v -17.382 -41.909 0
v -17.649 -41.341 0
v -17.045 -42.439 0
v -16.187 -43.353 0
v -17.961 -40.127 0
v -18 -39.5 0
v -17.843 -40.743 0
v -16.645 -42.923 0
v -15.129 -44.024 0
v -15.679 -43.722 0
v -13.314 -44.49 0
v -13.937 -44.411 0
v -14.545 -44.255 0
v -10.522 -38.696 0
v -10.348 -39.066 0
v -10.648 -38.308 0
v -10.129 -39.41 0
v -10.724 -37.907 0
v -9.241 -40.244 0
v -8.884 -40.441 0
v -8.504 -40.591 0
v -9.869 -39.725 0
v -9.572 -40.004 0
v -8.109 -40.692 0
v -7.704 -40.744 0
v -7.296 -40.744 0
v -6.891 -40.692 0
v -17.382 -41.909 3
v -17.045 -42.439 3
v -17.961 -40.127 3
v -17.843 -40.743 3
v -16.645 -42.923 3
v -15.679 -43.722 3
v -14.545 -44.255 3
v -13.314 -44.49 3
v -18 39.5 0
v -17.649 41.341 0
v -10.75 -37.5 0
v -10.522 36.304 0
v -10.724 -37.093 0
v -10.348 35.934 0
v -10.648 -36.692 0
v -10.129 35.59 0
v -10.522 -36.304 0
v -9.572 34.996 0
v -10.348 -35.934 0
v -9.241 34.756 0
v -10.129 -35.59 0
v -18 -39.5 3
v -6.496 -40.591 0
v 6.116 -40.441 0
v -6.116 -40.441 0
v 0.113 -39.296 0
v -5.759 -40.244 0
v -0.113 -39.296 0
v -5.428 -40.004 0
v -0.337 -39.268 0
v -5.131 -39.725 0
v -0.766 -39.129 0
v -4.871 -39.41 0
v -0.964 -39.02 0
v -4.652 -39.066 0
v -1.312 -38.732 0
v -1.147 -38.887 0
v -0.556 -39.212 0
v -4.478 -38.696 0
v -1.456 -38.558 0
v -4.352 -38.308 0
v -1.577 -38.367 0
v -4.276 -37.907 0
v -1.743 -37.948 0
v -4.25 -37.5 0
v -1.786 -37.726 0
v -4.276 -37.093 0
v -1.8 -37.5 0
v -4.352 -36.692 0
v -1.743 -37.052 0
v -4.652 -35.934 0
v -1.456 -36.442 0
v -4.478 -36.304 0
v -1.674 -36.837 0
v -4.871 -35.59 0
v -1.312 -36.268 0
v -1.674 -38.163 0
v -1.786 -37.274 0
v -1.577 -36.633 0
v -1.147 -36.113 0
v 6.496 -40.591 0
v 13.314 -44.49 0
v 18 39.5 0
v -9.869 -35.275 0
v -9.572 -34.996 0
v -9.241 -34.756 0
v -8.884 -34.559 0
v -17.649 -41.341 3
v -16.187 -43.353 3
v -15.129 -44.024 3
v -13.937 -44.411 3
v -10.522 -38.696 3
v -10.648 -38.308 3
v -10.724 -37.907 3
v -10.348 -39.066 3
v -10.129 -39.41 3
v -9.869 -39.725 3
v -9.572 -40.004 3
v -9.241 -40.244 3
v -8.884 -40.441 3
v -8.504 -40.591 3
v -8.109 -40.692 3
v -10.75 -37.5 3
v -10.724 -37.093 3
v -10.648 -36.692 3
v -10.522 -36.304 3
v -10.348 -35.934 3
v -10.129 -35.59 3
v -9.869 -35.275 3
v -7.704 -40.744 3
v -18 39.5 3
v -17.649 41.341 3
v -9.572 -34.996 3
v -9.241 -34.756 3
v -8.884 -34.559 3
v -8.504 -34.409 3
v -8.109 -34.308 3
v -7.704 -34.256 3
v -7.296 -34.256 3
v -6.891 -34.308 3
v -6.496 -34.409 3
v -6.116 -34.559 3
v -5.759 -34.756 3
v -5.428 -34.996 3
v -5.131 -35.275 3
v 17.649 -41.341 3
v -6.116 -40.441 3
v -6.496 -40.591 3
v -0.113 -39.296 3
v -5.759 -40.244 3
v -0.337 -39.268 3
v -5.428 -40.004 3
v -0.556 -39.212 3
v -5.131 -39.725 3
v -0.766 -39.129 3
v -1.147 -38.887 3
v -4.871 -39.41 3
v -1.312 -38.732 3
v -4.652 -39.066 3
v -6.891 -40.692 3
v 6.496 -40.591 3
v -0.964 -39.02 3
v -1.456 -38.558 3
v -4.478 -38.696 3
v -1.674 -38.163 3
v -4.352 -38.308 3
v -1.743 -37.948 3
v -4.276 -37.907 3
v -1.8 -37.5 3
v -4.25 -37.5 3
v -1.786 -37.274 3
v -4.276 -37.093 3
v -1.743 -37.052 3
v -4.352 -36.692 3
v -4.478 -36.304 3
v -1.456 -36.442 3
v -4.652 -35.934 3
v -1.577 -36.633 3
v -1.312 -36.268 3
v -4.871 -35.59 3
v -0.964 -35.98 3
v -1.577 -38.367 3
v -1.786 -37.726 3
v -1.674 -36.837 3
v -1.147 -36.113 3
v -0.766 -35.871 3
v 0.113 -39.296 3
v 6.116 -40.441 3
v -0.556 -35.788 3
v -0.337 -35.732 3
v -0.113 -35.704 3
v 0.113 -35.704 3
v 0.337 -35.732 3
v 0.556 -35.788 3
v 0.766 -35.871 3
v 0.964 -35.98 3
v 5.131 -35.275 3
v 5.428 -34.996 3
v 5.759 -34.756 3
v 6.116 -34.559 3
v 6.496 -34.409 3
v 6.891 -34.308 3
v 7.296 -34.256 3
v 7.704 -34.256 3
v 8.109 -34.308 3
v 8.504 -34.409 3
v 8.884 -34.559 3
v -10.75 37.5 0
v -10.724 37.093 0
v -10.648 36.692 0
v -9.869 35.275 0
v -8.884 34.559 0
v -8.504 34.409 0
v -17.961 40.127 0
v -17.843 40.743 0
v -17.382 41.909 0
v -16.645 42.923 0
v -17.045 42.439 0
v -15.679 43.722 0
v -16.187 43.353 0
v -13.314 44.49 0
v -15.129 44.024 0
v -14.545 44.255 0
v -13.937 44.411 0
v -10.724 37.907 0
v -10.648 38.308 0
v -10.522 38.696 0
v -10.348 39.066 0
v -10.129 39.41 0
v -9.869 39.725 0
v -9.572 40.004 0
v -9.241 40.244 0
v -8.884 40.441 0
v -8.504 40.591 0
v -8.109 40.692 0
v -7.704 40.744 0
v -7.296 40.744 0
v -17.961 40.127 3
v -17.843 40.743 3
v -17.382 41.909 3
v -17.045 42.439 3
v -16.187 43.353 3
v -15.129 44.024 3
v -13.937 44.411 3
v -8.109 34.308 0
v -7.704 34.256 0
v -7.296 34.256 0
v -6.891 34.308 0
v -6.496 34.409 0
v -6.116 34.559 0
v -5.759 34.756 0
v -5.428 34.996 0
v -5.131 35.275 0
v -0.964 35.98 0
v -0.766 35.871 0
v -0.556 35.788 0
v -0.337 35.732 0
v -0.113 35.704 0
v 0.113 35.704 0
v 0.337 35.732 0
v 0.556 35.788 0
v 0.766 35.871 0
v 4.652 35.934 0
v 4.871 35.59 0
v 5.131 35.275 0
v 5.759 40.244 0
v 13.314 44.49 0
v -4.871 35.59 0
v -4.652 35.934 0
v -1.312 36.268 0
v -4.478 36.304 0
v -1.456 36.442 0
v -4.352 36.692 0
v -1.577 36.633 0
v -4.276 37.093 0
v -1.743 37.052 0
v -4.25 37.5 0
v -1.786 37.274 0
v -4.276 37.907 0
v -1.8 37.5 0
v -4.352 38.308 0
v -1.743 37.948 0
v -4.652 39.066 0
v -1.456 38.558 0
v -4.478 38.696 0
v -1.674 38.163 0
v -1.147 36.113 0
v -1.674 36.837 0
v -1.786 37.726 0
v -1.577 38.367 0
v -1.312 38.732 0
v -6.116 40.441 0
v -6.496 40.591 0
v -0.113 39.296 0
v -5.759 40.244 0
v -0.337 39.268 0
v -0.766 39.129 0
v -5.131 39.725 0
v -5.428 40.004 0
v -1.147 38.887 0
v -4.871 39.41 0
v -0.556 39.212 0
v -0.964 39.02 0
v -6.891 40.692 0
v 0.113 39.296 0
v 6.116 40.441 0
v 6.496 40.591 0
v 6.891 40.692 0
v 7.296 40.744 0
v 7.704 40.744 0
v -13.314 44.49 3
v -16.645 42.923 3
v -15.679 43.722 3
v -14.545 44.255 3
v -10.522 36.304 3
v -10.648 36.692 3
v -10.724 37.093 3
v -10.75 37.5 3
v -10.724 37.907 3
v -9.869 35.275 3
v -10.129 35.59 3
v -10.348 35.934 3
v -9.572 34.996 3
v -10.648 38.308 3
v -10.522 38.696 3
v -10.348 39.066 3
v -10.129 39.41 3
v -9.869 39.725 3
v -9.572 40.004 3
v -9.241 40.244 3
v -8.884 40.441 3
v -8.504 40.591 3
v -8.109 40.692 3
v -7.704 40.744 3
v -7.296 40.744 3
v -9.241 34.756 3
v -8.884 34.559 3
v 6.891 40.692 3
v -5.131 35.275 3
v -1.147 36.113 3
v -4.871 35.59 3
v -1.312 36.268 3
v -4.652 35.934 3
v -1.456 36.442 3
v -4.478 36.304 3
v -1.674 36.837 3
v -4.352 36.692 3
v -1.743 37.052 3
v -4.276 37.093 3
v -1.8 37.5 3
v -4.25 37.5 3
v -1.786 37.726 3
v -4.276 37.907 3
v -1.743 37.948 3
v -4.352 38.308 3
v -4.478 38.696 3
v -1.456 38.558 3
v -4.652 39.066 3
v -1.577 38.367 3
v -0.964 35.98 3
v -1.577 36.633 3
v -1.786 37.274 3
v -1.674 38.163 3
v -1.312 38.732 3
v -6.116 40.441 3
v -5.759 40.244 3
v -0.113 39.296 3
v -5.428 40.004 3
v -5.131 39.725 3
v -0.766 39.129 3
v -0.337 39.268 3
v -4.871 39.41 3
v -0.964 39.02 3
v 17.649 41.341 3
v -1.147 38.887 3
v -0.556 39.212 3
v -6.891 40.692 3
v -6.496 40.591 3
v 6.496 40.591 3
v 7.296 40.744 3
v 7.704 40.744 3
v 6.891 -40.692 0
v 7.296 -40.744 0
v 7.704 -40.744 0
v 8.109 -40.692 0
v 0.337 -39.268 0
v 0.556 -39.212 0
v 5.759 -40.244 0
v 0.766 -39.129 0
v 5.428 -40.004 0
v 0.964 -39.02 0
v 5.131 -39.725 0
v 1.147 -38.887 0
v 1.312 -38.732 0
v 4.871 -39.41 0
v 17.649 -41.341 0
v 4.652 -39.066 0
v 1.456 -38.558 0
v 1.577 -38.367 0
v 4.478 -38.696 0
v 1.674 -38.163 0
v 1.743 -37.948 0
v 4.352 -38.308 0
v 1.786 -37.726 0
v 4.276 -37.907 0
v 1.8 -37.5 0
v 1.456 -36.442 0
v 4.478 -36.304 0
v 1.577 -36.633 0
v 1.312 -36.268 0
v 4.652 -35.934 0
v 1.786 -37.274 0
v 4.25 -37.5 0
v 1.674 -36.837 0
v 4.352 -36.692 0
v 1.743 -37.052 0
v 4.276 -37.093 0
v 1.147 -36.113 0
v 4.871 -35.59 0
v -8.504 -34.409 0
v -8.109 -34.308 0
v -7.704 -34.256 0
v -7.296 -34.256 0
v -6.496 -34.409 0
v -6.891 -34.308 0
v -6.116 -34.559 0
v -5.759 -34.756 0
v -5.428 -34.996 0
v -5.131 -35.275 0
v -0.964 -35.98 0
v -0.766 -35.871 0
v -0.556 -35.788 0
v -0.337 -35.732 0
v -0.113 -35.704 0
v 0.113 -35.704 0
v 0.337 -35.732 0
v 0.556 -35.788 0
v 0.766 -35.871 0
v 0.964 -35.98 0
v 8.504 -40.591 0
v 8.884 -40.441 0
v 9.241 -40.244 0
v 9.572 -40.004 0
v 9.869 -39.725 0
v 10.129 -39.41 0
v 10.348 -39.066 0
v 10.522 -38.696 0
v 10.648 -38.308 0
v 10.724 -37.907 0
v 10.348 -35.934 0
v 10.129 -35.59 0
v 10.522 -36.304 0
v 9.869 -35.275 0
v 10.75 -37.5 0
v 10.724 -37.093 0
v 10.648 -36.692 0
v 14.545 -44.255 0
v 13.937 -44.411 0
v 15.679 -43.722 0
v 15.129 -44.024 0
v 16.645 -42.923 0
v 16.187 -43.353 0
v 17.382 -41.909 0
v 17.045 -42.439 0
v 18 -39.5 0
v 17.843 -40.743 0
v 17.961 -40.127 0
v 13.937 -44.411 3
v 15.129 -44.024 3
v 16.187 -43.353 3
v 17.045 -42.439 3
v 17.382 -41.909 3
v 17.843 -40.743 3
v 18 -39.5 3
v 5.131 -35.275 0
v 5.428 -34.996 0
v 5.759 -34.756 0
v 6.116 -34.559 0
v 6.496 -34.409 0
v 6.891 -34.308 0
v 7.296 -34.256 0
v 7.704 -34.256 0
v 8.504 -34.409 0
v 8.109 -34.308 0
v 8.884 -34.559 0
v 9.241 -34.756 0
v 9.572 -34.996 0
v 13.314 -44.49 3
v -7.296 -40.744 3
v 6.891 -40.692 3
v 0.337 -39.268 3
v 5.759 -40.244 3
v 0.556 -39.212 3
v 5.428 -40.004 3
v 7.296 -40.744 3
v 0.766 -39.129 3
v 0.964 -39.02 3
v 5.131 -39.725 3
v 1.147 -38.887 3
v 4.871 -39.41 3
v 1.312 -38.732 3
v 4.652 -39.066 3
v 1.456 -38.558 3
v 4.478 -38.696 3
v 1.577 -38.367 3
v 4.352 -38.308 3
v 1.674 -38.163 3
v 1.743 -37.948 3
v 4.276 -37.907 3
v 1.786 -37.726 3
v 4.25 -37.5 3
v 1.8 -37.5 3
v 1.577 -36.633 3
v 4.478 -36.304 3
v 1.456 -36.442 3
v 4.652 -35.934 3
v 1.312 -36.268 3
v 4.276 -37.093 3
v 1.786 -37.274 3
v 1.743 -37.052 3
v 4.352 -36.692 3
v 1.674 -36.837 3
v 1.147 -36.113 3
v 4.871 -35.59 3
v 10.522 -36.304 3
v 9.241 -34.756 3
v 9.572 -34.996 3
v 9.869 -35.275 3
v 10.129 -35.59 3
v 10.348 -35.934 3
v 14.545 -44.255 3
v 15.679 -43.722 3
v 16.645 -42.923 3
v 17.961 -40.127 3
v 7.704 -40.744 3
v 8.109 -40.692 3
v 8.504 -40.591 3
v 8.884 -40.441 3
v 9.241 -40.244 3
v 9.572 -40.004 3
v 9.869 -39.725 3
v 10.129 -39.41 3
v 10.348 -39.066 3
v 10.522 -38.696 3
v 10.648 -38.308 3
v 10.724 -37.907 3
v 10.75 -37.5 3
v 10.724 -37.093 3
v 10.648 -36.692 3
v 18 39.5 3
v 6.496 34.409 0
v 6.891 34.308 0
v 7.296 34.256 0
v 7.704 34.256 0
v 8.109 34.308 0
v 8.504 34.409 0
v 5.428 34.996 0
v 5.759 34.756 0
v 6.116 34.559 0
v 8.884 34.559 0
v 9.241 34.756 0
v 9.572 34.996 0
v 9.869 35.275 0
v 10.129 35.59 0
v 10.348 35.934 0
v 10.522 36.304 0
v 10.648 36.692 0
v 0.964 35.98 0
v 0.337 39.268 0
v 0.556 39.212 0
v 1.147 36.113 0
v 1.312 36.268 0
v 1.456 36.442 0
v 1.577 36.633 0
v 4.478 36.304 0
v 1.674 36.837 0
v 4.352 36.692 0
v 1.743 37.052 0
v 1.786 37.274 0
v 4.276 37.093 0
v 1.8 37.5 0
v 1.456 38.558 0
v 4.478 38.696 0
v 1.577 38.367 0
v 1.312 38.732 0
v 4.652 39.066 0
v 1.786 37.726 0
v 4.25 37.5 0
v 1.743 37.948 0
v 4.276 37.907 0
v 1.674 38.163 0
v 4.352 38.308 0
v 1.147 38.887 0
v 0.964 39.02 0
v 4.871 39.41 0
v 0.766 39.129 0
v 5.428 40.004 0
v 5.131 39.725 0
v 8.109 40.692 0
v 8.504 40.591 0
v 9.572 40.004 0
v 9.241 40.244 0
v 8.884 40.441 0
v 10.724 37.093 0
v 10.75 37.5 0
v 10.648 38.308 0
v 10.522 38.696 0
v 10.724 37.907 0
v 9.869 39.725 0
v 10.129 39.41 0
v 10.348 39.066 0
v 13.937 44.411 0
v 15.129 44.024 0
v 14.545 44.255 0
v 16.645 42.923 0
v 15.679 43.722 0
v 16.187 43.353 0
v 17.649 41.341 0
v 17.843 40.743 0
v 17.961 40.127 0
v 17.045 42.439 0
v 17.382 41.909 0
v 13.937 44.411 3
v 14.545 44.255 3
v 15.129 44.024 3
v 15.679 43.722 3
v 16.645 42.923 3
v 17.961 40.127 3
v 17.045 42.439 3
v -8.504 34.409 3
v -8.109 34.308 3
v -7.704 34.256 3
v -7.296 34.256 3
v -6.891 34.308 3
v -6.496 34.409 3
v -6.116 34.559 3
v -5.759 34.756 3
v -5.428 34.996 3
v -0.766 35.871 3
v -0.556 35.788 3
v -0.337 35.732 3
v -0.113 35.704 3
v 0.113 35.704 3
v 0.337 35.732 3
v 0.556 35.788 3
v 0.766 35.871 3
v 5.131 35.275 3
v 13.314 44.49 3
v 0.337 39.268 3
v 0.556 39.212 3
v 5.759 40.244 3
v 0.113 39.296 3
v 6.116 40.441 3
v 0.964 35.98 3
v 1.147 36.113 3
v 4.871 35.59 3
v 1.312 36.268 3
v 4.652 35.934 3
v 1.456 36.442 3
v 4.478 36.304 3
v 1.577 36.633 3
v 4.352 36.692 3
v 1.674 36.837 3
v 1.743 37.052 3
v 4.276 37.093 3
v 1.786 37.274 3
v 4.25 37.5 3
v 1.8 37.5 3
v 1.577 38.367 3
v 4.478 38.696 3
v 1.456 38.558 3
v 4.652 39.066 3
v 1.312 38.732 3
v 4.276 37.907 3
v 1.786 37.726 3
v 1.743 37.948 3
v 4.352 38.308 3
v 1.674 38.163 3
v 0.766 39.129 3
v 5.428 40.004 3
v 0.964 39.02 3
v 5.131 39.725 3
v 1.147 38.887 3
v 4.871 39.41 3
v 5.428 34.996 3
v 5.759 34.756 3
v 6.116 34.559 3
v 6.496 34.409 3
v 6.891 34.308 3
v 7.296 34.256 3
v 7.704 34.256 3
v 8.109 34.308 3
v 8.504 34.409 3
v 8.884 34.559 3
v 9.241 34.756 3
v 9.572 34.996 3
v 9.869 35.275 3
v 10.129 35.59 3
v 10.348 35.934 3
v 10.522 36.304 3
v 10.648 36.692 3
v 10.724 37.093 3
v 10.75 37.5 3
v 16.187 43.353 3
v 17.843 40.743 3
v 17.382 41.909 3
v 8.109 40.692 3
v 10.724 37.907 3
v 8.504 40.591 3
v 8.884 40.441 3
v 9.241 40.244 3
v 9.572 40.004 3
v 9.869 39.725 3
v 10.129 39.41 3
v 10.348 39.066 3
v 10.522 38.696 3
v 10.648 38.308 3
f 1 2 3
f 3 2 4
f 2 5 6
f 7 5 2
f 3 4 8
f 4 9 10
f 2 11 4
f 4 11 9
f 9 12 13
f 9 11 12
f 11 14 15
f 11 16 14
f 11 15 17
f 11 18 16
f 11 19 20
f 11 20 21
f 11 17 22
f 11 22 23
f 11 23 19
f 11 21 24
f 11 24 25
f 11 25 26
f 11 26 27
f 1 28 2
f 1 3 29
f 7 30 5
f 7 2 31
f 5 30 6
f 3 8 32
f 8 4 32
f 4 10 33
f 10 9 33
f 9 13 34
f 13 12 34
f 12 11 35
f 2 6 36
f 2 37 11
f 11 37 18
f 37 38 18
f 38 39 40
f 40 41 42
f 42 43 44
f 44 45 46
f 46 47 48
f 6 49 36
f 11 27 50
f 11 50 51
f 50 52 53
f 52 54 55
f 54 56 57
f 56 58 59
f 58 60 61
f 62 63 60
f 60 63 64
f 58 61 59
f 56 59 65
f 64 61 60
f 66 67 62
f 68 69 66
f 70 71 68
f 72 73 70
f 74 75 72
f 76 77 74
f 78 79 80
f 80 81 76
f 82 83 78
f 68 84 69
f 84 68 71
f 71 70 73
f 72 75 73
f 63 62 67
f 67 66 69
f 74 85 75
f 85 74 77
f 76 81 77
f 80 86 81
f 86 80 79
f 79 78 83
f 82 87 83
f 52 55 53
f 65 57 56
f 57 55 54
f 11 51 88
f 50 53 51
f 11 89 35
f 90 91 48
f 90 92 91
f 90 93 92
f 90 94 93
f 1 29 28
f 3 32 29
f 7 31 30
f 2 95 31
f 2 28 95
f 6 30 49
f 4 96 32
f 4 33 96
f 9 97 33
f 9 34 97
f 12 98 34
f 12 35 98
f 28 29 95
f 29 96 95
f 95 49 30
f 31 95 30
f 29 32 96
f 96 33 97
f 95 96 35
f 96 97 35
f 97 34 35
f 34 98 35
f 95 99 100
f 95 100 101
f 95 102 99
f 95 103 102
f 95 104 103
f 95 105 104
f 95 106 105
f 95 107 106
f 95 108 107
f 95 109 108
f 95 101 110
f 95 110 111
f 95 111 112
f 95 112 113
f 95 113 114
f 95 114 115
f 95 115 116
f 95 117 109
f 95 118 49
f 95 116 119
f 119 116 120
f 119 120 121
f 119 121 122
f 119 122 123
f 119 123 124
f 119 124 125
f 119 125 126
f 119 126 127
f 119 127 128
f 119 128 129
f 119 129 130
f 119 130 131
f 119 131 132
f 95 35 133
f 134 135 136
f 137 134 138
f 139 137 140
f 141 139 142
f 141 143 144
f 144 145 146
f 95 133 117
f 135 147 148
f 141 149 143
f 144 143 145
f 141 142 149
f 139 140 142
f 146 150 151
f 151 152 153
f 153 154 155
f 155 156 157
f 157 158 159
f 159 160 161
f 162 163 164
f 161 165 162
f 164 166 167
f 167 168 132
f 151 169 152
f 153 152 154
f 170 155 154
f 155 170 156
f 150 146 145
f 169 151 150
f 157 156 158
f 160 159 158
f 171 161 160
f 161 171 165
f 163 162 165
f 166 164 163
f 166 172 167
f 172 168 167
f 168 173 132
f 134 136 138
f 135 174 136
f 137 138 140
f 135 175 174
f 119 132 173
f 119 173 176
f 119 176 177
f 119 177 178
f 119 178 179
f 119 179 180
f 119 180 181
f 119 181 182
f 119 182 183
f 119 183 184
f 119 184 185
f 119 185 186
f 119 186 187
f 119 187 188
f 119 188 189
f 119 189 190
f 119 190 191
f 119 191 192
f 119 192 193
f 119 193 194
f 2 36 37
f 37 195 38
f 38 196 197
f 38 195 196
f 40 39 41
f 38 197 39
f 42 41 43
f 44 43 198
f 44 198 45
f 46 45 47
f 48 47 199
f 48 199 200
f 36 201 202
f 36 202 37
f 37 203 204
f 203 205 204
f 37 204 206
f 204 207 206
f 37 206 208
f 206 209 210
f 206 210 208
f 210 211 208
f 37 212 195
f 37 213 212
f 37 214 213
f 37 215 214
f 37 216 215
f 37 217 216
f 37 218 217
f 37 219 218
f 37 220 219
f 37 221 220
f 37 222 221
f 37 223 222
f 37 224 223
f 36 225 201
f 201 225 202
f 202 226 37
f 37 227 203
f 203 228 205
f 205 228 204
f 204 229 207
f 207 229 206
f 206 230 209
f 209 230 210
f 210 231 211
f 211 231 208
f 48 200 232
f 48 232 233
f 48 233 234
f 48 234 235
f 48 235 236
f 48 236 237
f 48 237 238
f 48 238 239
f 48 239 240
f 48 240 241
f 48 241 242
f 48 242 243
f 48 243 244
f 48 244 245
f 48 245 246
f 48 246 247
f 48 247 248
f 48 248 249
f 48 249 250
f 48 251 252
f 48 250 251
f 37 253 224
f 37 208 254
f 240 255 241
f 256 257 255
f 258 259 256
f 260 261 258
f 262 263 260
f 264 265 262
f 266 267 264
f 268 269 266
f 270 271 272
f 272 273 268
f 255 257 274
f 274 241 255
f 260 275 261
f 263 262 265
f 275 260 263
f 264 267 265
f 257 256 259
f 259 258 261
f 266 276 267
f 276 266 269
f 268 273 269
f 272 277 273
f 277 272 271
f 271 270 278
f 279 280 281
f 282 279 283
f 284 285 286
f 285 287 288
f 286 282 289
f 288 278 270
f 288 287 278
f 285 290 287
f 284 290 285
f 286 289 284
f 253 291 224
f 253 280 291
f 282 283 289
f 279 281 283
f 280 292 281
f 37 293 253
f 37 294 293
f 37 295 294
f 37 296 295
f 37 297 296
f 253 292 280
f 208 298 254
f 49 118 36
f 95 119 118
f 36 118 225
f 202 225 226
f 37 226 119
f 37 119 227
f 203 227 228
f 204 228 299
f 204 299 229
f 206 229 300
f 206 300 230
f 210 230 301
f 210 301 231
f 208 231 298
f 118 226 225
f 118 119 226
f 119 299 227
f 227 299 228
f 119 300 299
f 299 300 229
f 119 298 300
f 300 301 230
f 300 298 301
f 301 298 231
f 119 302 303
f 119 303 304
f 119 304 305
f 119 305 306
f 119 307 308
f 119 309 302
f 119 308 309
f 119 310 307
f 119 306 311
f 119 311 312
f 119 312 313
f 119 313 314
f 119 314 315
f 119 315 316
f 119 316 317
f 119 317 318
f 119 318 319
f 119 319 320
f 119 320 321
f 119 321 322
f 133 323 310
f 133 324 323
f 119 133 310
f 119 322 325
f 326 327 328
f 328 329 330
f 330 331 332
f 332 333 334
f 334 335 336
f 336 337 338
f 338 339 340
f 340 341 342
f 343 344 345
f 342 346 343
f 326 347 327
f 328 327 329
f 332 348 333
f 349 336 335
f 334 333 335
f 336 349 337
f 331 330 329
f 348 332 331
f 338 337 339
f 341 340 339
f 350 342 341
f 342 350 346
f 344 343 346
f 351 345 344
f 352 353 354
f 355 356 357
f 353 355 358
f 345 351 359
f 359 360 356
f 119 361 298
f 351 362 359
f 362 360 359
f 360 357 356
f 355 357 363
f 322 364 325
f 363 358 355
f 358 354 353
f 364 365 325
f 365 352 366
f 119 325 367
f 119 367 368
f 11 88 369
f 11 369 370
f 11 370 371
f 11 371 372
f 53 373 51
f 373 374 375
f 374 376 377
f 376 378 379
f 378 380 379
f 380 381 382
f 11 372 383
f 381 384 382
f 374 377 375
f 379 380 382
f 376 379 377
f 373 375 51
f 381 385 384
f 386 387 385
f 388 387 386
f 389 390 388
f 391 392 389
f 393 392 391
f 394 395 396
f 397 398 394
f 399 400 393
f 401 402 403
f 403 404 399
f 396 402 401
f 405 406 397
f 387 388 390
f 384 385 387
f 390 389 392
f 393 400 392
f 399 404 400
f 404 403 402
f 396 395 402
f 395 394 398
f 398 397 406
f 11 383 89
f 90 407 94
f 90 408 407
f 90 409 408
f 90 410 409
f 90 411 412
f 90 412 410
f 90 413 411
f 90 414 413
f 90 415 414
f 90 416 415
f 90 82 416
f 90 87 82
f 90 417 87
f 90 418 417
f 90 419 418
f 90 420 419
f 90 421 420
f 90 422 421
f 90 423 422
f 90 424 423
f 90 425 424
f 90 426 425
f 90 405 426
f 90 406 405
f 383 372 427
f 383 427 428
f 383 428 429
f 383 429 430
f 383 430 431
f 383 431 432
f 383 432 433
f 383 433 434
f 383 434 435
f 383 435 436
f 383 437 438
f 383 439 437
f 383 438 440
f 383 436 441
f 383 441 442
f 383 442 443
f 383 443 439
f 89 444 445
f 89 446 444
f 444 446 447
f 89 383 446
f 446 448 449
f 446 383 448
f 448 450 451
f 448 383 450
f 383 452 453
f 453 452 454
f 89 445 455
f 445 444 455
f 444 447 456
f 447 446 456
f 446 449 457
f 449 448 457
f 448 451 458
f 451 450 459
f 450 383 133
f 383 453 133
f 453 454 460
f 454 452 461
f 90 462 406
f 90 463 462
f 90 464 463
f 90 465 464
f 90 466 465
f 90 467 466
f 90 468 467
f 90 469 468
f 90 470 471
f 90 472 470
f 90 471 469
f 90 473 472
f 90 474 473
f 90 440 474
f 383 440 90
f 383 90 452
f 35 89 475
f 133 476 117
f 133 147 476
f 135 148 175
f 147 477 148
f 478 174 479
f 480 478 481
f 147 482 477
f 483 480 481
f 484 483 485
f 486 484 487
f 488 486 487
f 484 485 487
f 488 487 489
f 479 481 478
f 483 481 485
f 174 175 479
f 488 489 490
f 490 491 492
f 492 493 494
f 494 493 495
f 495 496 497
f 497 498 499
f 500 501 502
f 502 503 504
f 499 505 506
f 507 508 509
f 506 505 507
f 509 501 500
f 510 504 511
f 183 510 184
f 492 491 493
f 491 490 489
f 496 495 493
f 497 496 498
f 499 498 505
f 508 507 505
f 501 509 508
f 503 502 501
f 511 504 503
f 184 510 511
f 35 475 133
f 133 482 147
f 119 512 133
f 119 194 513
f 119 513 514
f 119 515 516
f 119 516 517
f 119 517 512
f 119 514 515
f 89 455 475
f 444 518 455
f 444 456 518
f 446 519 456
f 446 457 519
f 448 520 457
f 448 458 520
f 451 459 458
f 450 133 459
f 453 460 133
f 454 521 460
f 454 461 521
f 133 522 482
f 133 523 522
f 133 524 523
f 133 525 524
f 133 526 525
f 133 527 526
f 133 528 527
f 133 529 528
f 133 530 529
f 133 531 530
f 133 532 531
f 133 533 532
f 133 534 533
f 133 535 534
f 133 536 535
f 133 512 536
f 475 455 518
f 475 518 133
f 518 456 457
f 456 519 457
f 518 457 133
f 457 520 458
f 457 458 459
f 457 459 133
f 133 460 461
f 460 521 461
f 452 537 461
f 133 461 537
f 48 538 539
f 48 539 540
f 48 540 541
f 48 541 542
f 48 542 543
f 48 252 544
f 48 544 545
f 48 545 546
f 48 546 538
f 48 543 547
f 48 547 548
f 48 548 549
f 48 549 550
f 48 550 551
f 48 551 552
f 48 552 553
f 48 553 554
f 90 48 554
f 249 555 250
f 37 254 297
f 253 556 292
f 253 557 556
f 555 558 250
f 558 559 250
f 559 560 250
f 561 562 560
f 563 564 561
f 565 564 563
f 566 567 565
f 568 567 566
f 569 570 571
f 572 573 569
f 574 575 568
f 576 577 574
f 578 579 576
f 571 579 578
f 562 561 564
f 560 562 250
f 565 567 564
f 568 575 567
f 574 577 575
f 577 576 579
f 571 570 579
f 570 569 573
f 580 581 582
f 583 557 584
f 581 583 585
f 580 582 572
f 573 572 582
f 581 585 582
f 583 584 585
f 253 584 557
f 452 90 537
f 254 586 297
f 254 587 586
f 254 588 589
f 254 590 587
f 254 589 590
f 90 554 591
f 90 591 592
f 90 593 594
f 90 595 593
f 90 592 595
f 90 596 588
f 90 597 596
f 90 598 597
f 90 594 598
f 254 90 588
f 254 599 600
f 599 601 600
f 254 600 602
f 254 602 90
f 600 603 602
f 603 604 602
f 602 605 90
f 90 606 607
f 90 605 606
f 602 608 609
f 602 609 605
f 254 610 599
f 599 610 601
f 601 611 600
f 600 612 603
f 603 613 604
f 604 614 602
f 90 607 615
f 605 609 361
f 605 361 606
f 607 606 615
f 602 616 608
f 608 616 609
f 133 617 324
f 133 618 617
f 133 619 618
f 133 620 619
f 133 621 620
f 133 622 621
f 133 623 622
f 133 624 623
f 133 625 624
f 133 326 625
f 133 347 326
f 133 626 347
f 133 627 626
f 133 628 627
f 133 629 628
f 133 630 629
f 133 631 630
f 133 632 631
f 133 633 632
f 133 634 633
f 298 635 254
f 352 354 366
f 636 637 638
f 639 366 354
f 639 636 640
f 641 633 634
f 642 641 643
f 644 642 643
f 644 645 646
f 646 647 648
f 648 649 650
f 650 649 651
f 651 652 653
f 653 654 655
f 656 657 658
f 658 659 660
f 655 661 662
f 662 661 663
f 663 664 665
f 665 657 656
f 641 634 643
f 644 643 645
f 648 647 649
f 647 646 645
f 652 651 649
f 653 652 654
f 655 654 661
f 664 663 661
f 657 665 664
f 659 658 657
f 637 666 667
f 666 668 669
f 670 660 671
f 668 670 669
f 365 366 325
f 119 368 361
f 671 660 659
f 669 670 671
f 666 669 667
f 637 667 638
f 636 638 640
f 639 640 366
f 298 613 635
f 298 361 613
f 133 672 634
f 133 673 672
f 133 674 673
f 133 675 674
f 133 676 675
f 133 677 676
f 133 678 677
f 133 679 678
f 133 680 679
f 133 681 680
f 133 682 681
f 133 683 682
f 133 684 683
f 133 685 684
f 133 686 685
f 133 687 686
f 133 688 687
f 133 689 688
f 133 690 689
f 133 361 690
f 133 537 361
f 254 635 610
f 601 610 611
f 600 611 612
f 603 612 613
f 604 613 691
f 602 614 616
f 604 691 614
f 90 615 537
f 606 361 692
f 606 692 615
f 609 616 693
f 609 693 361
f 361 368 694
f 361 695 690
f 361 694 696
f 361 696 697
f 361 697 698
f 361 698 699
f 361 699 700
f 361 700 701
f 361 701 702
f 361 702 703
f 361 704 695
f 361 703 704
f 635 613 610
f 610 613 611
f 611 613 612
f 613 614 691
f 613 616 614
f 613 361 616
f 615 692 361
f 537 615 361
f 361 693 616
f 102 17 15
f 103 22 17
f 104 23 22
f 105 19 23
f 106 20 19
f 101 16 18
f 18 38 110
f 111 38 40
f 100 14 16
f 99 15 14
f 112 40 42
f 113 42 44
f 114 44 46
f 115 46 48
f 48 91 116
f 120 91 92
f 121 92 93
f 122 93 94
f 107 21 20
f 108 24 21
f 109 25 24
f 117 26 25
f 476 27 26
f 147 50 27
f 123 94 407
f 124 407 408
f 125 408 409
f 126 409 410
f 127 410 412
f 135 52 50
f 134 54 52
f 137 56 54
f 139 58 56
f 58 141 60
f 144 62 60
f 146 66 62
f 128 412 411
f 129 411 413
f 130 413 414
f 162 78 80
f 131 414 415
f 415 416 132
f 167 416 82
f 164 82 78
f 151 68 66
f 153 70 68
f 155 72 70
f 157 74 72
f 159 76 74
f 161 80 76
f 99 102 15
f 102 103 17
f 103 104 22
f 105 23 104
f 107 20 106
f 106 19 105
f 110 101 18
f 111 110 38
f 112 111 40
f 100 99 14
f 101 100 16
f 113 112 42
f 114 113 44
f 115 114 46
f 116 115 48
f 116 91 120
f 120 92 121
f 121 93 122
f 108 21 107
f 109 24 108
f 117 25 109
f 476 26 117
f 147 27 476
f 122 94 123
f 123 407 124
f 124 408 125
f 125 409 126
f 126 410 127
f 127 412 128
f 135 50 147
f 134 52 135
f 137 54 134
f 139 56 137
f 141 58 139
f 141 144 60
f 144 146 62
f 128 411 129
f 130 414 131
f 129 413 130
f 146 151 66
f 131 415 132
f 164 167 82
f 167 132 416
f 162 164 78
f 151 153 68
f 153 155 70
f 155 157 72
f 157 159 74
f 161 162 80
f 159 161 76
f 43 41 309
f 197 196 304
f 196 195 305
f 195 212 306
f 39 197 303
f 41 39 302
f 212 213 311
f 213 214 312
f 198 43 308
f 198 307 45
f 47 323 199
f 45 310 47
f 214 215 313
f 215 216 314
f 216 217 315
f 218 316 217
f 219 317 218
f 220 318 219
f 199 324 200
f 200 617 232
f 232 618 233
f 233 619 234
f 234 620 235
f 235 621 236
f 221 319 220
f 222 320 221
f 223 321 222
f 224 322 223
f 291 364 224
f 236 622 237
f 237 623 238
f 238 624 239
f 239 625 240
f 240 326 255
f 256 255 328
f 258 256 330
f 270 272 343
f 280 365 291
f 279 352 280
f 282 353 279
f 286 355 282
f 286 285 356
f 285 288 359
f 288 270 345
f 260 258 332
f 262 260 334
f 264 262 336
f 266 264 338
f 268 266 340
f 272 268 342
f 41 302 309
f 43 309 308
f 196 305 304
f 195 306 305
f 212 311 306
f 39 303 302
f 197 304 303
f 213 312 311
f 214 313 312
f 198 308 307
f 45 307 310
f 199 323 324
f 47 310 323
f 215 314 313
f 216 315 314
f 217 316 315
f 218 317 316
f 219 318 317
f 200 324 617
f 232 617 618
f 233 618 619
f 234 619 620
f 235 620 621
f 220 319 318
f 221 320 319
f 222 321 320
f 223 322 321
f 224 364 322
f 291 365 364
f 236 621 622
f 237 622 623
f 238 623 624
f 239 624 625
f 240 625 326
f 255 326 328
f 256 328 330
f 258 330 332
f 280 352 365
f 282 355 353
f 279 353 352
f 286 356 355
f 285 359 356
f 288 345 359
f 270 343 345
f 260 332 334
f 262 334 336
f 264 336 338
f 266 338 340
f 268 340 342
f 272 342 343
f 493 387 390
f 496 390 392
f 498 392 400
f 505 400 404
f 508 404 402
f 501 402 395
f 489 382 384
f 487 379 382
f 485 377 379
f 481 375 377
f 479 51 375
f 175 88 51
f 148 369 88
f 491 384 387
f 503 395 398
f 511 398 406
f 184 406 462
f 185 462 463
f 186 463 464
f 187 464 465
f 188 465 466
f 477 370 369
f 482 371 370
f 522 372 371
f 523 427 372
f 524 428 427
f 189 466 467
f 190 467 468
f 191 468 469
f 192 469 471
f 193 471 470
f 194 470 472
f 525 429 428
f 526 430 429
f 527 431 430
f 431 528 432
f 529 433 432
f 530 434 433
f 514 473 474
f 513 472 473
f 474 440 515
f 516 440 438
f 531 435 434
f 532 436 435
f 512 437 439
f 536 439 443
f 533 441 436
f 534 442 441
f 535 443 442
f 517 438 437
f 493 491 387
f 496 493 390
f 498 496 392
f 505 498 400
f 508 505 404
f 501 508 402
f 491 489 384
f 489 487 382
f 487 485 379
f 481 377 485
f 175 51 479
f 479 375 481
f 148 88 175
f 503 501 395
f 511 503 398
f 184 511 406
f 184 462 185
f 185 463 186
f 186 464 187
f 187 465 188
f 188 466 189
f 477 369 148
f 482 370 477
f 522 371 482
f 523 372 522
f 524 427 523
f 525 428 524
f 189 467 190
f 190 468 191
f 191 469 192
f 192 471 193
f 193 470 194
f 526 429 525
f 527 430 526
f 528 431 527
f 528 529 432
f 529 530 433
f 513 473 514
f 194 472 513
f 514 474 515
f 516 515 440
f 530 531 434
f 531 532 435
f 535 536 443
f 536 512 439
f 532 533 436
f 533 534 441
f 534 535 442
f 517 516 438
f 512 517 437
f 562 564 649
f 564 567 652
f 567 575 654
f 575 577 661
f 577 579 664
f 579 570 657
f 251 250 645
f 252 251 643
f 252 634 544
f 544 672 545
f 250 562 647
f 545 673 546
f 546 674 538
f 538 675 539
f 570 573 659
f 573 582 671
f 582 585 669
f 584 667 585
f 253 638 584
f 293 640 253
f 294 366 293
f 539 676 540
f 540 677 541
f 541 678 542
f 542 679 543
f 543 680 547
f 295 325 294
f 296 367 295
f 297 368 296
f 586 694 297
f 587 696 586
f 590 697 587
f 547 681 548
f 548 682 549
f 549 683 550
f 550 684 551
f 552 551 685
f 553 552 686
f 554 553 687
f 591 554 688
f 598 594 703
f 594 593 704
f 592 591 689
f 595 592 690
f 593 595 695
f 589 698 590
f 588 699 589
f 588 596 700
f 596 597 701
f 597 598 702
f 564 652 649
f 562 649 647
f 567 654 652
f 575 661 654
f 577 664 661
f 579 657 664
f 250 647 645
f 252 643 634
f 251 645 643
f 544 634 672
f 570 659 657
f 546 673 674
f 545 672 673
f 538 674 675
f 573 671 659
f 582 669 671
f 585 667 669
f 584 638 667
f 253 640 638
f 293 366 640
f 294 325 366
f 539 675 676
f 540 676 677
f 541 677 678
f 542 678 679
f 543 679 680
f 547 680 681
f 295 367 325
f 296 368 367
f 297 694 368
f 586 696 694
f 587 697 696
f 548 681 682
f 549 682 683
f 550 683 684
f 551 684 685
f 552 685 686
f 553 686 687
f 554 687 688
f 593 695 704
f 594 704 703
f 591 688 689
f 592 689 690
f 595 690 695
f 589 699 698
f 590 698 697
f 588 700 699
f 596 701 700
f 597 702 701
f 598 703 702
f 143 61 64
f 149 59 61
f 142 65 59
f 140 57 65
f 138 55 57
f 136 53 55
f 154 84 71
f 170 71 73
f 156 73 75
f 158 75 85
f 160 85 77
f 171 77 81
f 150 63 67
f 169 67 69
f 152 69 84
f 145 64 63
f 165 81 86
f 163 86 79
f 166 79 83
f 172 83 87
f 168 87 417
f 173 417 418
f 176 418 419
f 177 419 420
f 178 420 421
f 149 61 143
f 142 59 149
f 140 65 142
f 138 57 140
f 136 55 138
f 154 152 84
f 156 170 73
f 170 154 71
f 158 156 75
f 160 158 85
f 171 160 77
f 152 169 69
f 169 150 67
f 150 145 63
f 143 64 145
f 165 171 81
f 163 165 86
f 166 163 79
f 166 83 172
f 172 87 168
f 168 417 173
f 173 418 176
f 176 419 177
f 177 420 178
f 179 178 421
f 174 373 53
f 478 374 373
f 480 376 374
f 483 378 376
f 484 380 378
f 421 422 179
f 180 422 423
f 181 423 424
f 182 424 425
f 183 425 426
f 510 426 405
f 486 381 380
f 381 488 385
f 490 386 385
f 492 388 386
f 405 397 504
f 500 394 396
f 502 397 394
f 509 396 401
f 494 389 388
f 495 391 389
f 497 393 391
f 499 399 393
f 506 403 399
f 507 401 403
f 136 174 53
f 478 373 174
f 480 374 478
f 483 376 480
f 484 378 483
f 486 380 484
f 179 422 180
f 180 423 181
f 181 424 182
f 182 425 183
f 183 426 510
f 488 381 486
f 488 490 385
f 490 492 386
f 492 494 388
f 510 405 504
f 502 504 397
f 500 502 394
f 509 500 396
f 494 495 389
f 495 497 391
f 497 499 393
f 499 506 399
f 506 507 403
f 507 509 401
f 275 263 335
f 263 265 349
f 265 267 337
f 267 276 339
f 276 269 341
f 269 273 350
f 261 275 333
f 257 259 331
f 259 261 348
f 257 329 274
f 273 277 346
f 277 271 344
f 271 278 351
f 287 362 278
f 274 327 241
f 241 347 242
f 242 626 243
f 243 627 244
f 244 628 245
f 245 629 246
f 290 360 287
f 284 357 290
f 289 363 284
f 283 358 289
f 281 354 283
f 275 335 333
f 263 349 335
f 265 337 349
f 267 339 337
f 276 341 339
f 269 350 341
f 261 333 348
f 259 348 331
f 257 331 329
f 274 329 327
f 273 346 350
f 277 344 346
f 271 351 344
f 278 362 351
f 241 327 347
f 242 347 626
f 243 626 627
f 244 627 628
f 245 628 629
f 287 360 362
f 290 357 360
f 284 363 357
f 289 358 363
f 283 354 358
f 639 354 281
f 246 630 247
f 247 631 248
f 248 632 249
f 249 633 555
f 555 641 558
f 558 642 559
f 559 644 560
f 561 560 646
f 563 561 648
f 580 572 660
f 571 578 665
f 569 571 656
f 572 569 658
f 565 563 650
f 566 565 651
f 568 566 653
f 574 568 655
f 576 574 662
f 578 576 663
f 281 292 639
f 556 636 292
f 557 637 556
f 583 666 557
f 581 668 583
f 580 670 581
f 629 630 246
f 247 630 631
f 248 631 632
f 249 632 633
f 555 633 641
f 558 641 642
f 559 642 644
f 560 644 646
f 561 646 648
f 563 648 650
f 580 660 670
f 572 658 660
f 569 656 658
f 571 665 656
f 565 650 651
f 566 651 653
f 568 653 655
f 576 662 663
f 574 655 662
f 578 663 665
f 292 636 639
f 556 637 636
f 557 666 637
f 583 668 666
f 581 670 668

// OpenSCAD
$fn = 50;

difference() {
	union() {
		hull() {
			translate(v = [-13.0, 39.5, 0]) {
				cylinder(h = 3, r = 5);
			}
			translate(v = [13.0, 39.5, 0]) {
				cylinder(h = 3, r = 5);
			}
			translate(v = [-13.0, -39.5, 0]) {
				cylinder(h = 3, r = 5);
			}
			translate(v = [13.0, -39.5, 0]) {
				cylinder(h = 3, r = 5);
			}
		}
	}
	union() {
		translate(v = [-7.5, -37.5, -1]) {
			cylinder(h = 5, r = 3.25);
		}
		translate(v = [-7.5, 37.5, -1]) {
			cylinder(h = 5, r = 3.25);
		}
		translate(v = [7.5, -37.5, -1]) {
			cylinder(h = 5, r = 3.25);
		}
		translate(v = [7.5, 37.5, -1]) {
			cylinder(h = 5, r = 3.25);
		}
		translate(v = [0.0, -37.5, -1]) {
			cylinder(h = 5, r = 1.8);
		}
		translate(v = [0.0, 37.5, -1]) {
			cylinder(h = 5, r = 1.8);
		}
	}
}
